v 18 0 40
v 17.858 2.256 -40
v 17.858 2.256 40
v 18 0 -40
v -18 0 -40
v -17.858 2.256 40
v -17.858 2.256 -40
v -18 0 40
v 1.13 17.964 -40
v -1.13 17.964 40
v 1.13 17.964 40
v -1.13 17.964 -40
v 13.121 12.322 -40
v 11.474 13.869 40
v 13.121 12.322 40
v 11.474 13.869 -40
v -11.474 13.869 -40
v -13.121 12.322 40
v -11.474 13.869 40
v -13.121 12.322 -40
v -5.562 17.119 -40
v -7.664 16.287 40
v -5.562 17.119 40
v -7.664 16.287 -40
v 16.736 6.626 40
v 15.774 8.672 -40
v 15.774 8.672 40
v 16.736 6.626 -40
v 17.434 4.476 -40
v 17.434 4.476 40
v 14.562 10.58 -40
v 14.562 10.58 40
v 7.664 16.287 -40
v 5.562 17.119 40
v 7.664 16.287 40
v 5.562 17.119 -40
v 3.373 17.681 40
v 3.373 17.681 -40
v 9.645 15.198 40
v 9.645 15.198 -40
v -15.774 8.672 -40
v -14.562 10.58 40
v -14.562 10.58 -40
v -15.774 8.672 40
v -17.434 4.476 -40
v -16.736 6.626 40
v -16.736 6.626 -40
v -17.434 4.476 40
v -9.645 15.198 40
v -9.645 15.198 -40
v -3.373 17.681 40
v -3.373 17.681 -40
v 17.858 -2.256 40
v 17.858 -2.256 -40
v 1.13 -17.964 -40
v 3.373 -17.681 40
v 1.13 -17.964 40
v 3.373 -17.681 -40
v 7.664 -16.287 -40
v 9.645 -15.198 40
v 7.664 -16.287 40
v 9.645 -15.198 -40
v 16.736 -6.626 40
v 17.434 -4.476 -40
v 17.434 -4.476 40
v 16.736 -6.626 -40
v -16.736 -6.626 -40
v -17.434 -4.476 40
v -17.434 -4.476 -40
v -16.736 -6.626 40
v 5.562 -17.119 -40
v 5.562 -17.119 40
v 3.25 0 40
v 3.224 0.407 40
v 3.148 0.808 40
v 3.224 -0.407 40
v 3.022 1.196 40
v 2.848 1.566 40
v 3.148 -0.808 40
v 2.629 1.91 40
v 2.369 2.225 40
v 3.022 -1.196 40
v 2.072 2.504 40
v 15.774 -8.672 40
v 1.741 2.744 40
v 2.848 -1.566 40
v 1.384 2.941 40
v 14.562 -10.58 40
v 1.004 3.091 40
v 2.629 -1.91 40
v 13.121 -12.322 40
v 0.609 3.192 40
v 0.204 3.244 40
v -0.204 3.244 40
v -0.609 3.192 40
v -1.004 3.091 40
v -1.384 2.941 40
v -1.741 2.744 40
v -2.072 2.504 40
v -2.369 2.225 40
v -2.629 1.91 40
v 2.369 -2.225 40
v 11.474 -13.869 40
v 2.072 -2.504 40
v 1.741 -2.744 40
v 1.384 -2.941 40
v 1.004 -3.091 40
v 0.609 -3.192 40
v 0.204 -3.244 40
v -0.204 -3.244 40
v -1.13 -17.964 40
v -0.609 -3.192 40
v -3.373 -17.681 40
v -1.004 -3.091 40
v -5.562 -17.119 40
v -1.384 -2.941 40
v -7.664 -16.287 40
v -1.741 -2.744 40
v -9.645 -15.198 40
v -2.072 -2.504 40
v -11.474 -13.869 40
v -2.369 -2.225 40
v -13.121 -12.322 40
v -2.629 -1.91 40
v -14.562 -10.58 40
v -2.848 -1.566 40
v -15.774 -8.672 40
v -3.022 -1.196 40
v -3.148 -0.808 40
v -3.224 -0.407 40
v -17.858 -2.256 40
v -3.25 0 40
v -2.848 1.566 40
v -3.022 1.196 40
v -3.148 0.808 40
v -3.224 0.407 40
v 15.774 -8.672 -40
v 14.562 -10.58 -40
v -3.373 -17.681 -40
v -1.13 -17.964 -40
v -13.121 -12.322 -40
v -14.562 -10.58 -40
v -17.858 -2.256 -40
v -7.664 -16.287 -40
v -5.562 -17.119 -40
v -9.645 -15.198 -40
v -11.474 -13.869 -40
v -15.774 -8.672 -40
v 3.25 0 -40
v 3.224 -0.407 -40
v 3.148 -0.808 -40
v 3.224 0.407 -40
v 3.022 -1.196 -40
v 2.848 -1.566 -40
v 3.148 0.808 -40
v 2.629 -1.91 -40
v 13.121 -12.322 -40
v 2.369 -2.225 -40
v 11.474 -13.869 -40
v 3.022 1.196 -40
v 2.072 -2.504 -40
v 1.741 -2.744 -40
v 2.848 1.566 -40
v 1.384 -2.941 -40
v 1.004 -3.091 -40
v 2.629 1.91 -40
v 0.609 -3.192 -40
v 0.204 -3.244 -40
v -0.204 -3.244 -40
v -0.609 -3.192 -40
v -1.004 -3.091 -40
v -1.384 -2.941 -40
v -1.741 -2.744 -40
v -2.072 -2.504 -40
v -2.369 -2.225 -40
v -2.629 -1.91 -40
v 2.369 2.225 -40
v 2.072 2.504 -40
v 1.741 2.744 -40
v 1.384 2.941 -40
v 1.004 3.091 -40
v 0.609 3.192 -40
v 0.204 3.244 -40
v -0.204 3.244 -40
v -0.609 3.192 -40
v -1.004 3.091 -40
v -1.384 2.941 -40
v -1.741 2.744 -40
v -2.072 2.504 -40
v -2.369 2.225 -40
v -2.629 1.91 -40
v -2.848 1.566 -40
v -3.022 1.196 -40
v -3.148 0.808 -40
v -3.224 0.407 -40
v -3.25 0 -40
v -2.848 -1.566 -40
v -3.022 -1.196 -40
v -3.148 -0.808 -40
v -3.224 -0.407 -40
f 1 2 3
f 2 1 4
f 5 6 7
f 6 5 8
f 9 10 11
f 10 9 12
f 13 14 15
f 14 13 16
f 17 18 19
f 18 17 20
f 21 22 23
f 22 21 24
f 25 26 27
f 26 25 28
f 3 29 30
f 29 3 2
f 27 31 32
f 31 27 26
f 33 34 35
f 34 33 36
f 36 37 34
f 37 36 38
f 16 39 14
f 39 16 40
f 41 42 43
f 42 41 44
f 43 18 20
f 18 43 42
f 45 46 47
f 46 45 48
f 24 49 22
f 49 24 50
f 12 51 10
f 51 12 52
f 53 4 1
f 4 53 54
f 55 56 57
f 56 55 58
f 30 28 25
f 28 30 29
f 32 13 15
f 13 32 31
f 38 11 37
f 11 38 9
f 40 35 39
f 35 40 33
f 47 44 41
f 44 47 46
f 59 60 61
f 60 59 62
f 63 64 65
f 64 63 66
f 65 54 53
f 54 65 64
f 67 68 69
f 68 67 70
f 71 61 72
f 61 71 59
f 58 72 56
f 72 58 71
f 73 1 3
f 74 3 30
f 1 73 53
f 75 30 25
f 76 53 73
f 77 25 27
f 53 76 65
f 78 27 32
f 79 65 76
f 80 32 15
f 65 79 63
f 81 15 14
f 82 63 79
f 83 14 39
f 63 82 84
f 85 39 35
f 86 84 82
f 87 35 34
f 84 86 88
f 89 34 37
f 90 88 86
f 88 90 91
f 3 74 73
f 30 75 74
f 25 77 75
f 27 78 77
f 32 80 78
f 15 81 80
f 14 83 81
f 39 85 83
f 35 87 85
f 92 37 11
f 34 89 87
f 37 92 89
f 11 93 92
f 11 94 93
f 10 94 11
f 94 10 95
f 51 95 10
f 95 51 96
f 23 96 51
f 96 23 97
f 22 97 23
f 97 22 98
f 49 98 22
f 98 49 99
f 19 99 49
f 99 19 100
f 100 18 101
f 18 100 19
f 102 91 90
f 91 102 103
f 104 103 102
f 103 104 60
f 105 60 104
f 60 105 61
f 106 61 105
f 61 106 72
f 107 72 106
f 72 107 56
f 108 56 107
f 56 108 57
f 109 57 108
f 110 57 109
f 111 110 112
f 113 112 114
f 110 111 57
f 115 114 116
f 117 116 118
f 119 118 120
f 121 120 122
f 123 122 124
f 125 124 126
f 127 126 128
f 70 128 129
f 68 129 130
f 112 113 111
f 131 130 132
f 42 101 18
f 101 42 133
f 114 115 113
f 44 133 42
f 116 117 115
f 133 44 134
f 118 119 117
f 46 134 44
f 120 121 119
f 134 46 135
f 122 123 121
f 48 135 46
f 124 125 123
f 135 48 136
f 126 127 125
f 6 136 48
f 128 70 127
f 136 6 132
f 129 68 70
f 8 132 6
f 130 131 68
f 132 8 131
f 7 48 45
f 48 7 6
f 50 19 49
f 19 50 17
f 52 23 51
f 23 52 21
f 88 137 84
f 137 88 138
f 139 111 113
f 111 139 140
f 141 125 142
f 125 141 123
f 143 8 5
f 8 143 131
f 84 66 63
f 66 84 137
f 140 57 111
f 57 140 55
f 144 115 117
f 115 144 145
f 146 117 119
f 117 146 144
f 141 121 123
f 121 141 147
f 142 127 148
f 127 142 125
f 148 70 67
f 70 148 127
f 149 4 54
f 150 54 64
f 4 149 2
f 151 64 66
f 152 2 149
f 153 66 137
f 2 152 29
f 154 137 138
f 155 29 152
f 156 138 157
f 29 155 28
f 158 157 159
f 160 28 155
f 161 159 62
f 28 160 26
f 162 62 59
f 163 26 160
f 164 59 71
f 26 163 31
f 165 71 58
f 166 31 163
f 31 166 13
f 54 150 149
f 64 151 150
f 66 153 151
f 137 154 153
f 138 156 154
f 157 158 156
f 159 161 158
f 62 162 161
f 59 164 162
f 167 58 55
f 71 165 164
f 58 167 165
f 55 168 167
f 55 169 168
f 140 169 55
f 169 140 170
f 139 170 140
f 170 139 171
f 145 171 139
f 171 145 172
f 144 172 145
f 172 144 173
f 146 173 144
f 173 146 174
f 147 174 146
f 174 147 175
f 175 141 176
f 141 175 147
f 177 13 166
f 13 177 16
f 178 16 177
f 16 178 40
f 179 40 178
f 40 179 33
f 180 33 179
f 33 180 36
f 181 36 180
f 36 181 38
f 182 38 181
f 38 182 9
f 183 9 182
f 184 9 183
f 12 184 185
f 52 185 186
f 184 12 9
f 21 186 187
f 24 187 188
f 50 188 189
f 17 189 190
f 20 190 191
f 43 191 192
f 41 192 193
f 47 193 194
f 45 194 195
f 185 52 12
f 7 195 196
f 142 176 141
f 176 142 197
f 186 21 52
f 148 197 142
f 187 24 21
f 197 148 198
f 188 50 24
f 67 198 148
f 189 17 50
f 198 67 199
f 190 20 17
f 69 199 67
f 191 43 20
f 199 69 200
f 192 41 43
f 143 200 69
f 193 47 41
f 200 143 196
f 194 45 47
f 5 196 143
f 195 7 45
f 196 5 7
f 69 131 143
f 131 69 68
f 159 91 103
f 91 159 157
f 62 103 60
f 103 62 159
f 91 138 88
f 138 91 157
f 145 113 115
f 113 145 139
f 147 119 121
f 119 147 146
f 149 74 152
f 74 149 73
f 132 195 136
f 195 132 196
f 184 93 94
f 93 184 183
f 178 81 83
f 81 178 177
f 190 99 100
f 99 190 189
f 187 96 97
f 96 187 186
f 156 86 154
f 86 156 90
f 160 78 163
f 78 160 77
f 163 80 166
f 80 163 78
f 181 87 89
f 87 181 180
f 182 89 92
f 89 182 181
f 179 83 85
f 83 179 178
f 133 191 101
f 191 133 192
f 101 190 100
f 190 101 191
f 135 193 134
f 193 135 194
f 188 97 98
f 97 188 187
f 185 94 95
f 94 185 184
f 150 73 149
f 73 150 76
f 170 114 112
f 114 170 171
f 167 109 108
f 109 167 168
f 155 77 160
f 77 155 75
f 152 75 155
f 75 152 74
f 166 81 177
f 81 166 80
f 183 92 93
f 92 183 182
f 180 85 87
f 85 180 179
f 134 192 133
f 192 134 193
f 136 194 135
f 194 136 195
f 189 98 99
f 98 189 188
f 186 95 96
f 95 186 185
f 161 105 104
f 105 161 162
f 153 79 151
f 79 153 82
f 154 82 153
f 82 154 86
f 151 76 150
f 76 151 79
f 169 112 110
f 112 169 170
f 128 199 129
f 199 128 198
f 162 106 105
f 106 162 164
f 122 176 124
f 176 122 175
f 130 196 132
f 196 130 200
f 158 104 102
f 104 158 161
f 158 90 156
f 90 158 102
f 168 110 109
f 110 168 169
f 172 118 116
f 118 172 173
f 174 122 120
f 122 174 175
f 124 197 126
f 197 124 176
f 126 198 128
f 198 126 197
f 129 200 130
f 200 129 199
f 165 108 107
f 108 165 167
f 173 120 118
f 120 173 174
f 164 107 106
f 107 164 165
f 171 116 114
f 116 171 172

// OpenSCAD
$fn = 50;


difference() {
	union() {
		translate(v = [0, 0, -40.0000000000]) {
			cylinder(h = 80, r = 18.0000000000);
		}
	}
	union() {
		translate(v = [0, 0, -100.0000000000]) {
			cylinder(h = 200, r = 3.2500000000);
		}
	}
}
